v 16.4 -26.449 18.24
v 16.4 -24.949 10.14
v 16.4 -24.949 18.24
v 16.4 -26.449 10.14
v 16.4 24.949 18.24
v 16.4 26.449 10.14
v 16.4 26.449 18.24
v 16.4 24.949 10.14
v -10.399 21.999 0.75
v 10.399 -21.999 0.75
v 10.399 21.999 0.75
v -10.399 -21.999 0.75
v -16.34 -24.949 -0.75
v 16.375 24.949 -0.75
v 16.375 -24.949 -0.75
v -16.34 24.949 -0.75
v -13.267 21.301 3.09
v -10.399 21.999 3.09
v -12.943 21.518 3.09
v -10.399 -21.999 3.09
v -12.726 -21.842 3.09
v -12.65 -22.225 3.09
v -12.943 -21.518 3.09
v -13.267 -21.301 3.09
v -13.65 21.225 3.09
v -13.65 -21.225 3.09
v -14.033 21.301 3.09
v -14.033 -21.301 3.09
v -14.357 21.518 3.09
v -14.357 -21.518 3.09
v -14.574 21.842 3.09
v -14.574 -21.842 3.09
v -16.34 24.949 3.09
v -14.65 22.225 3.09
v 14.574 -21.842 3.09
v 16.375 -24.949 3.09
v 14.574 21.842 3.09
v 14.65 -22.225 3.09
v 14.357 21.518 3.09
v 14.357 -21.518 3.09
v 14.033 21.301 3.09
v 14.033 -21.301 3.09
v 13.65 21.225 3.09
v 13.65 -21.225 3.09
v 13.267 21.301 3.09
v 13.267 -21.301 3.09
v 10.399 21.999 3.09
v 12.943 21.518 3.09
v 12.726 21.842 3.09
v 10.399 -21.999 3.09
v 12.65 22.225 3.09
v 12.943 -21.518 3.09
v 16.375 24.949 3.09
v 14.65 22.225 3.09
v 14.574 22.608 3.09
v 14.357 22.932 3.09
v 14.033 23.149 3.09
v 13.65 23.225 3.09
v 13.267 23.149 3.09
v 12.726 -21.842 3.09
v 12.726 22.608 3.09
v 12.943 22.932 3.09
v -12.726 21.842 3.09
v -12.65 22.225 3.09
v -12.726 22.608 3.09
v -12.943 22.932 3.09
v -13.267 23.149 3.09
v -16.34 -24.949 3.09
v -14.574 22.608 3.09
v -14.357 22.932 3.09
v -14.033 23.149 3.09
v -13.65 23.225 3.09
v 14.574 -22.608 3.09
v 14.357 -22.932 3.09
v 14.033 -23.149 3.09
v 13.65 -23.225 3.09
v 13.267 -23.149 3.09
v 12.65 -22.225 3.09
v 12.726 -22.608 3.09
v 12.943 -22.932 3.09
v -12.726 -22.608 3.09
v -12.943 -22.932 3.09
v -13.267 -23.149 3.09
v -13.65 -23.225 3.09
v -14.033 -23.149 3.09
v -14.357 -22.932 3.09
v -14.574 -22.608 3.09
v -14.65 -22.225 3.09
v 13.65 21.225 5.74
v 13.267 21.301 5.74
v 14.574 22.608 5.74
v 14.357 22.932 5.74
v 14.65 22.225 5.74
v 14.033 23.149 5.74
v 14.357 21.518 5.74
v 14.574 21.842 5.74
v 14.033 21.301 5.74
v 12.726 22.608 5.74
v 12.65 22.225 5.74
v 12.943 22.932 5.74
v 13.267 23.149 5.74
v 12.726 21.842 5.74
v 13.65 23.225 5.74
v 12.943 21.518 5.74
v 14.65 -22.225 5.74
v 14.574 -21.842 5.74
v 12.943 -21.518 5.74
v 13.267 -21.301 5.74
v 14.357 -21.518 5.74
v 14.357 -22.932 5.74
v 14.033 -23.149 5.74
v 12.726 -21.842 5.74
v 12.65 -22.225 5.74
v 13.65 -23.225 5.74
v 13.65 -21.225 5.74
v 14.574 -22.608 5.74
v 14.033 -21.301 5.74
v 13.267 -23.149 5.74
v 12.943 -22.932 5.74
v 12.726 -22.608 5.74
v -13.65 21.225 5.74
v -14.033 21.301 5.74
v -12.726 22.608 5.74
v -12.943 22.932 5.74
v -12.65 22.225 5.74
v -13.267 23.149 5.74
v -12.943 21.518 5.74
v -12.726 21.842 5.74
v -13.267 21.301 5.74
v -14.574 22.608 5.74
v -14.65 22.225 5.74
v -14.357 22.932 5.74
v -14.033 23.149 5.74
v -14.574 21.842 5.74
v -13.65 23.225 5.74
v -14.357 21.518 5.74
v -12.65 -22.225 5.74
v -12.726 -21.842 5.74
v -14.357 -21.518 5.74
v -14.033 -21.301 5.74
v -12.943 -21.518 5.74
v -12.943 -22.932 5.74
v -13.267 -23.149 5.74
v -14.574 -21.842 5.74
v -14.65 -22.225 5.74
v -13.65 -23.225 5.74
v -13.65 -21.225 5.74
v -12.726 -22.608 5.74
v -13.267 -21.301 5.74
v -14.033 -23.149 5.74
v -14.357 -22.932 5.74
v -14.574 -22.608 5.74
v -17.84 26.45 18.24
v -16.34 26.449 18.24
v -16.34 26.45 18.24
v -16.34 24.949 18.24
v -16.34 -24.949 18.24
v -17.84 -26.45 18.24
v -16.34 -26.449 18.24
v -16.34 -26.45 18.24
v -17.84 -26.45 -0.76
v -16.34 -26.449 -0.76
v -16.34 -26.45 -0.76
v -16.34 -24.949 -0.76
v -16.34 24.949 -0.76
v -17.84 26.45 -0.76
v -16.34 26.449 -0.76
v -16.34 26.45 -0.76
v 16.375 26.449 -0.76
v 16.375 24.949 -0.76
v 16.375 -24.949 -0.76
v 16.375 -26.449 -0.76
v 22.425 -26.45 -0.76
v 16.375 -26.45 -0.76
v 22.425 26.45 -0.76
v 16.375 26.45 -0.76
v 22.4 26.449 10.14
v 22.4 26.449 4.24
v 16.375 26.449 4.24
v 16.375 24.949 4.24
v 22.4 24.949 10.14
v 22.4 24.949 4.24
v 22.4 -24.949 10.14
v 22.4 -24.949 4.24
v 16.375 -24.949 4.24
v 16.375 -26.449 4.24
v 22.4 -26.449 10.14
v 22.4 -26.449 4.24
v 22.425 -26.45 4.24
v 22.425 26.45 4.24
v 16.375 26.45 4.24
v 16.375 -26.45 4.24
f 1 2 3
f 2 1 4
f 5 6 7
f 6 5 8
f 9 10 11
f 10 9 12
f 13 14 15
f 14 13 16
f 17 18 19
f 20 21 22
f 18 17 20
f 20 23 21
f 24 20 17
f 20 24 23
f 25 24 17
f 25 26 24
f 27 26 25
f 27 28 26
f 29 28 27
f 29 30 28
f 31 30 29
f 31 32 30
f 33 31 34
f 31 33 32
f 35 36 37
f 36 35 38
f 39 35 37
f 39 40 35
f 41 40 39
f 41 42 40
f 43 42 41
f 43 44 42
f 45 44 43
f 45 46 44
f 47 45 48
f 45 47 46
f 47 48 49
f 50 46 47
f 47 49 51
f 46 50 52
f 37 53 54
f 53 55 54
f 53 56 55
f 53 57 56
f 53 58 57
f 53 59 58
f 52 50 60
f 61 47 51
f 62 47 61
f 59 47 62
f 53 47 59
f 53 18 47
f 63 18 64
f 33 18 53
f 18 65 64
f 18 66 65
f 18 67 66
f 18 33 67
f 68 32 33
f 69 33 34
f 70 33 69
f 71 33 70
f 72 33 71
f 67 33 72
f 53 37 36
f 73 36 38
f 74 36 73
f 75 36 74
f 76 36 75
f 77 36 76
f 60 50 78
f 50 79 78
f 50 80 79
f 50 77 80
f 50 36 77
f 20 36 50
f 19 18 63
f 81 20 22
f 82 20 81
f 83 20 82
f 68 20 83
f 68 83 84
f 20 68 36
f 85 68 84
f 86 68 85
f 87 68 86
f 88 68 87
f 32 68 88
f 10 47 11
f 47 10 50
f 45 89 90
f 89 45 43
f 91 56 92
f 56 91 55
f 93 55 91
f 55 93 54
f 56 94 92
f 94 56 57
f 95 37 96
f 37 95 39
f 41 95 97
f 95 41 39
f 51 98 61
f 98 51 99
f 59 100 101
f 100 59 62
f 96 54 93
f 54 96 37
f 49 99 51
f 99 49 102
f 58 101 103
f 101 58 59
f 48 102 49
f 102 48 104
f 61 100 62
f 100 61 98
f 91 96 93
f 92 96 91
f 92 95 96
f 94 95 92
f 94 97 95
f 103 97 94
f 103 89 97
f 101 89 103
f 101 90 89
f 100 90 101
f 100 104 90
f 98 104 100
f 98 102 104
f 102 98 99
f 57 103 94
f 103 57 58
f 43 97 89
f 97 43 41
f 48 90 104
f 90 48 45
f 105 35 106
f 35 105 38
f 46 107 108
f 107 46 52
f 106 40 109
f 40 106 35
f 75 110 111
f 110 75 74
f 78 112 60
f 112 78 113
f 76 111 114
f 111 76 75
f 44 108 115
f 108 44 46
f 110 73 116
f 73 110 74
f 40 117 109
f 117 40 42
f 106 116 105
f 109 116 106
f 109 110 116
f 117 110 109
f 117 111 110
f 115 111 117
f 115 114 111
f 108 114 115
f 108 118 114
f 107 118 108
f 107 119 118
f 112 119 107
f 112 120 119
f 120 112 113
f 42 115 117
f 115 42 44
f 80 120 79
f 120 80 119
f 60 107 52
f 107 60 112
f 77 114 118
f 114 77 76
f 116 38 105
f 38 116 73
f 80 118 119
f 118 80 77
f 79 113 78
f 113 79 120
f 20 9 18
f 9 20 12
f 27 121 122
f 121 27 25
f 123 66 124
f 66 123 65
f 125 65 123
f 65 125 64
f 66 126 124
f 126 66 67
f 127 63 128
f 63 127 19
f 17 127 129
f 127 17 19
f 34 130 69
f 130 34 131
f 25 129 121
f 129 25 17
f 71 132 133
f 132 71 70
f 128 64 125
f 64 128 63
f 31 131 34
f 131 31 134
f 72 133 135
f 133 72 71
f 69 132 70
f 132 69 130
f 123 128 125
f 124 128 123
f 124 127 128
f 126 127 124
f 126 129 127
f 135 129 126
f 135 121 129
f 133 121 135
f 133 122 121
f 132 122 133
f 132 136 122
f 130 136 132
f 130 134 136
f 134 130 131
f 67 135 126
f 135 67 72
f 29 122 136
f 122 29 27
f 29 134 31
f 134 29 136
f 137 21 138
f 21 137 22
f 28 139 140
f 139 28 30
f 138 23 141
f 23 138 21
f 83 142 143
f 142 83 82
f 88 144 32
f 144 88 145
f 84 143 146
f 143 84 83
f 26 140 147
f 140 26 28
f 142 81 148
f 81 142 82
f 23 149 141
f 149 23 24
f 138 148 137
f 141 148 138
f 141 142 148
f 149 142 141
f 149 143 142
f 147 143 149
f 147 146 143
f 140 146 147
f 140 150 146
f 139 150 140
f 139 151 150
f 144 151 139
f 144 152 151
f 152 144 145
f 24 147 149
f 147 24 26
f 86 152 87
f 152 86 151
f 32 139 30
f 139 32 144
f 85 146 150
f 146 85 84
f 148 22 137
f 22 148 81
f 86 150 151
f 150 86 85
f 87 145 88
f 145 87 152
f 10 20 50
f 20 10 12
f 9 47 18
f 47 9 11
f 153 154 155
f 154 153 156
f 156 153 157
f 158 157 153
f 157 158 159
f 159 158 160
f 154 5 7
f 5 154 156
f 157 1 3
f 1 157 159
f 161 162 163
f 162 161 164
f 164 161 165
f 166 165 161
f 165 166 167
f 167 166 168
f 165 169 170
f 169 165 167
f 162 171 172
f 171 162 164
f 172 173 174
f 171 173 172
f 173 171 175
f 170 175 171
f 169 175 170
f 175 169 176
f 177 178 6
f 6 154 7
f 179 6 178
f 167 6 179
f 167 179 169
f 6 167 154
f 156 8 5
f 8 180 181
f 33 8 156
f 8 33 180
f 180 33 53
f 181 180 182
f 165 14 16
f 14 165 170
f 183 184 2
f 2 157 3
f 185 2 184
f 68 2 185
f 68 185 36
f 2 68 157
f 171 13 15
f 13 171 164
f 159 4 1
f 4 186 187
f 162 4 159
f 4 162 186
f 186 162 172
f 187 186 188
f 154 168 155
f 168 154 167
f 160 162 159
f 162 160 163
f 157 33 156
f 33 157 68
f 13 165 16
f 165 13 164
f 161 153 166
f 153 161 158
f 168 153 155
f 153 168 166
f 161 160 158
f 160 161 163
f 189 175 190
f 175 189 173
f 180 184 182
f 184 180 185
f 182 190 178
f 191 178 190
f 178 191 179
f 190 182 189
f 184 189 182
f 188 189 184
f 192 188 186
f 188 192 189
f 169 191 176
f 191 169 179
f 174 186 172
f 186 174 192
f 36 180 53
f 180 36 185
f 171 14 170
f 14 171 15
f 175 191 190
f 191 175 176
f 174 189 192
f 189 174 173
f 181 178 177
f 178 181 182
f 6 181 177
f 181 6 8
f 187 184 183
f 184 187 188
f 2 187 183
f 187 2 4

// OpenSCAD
$fa = 1;
$fs = 0.4;
//translate([0, 22, 0])
// bottom of case
x = 32.8;
y = 50;
cube([x,y,1.5],center=true);

//tht bump + pegs
translate([(x/2)-3.001,0,3.1-1.26])
    cube([6,y,2.5],center=true);
translate([27.3/2,22.225,4.5-1.26])
    cylinder(h=5,r=1, center=true);
//translate([0,23,5.7-.2]) no need for retention cubes?
//    cube([1, 1, 1], center=true);
translate([27.3/2,-22.225,4.5-1.26])
    cylinder(h=5,r=1, center=true);
//translate([0,-23,5.7-.2]) no need for retention cubes?
//    cube([1, 1, 1], center=true);
    
    //tht bump + pegs
translate([-((x/2)-3.001),0,3.1-1.26])
    cube([6,y,2.5],center=true);
translate([-27.3/2,22.225,4.5-1.26])
    cylinder(h=5,r=1, center=true);
//translate([0,23,5.7-.2]) no need for retention cubes?
//    cube([1, 1, 1], center=true);
translate([-27.3/2,-22.225,4.5-1.26])
    cylinder(h=5,r=1, center=true);
//translate([0,-23,5.7-.2]) no need for retention cubes?
//    cube([1, 1, 1], center=true);

//side supports
translate([0,-((y/2)-1.501),3.1-1.26])
cube([x,3,2.5],center=true);

translate([0,((y/2)-1.501),3.1-1.26])
cube([x,3,2.5],center=true);

//sides
translate([0,((y/2)+.699),10-1.26])
cube([x,1.5,19],center=true);

translate([0,-((y/2)+.699),10-1.26])
cube([x,1.5,19],center=true);
//back
translate([-((x/2)+.69),0,10-1.26])
cube([1.5,y+2.9,19],center=true);

//front lip
//translate([((x/2)+0.49),0,3.5-1.26])
//cube([1,y+2.9,6],center=true);
//snout
translate([((x/2)+3.0),0,3-1.26])
cube([6.05,y+2.9,5],center=true);

translate([3,((y/2)+.699),7.5-1.26])
cube([x+6,1.5,7.8],center=true);

translate([3,-((y/2)+.699),7.5-1.26])
cube([x+6,1.5,7.8],center=true);
